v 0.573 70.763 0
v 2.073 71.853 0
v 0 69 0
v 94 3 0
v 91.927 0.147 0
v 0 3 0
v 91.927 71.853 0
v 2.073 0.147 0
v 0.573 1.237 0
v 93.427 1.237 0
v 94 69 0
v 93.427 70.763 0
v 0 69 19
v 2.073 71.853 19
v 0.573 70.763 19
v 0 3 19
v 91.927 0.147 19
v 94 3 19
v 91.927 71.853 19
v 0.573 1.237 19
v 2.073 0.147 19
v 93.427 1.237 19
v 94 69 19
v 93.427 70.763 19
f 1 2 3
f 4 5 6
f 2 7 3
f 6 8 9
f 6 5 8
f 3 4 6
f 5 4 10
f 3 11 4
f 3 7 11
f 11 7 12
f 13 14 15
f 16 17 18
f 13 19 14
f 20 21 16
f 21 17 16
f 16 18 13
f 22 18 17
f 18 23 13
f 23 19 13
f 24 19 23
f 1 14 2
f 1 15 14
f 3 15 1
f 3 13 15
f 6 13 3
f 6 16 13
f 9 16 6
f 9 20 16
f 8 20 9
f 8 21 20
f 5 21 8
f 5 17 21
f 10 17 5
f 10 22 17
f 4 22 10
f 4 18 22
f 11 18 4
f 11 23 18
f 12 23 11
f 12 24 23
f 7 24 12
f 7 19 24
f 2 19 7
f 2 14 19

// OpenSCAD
// file: ../../lib/rounded_square.scad
$bleed = 1;
$rounding = 3;

module rounded_square(size) {
  inner_size = [
    size[0] - $rounding * 2,
    size[1] - $rounding * 2,
  ];

  minkowski() {
    translate([$rounding, $rounding, 0]) {
      square(inner_size);
    }
    circle($rounding);
  }
}
// file: ../../lib/rounded_cube.scad
include <./rounded_square.scad>

$bleed = 1;
$rounding = 3;

// Render a rounded cube
// flat_top: do not round the top edges
// flat_bottom: do not round the bottom edges
// flat: equals flat_top && flat_bottom
// 
// Limitations:
// requires height > $rounding * 2
// flat_top || flat_bottom requires height > $rounding
// flat_top && flat_bottom requires height > $bleed
module rounded_cube(
  size, 
  flat=false, 
  flat_top=false, 
  flat_bottom=false,
  side_rounding=-1
) {
  _flat = flat || (flat_top && flat_bottom);
  _flat_top = flat_top || flat;
  _flat_bottom = flat_bottom || flat;
  _rounding = min($rounding, size[2] / 2);
  _side_rounding = side_rounding > -1 ? side_rounding: $rounding;

  assert(_side_rounding >= $rounding, "side rounding cannot be less than rounding");

  top_height = _flat_top ? 0: _rounding;
  bottom_height = _flat_bottom ? 0: _rounding;

  cube_size = [
    size[0] - _rounding * 2,
    size[1] - _rounding * 2,
    size[2] - (top_height + bottom_height)
  ];

  if (_flat_top && _flat_bottom) {
     linear_extrude(cube_size[2]) {
       rounded_square([size[0], size[1]]);
     }
  } else {
    minkowski() {
      translate([_rounding, _rounding, bottom_height]) {
        if (_side_rounding != _rounding) {
          linear_extrude(cube_size[2]) {
            rounded_square([cube_size[0], cube_size[1]], $rounding=_side_rounding);
          }
        } else {
          cube(cube_size);
        }
      }

      if (_flat_top) {
        difference() {
          sphere(_rounding);
          cylinder(_rounding, _rounding, _rounding);
        }
      } else if (_flat_bottom) {
        difference() {
          sphere(_rounding);
          translate ([0, 0, -_rounding]) {
            cylinder(_rounding, _rounding, _rounding);
          }
        }
      } else {
        sphere(_rounding);
      }
    }
  }
}
// main file
echo(version=version());

include <../../lib/rounded_cube.scad>

length = 94;
width = 72;
height = 19;

rounded_cube([length, width, height], flat_top=true, flat_bottom=true);
